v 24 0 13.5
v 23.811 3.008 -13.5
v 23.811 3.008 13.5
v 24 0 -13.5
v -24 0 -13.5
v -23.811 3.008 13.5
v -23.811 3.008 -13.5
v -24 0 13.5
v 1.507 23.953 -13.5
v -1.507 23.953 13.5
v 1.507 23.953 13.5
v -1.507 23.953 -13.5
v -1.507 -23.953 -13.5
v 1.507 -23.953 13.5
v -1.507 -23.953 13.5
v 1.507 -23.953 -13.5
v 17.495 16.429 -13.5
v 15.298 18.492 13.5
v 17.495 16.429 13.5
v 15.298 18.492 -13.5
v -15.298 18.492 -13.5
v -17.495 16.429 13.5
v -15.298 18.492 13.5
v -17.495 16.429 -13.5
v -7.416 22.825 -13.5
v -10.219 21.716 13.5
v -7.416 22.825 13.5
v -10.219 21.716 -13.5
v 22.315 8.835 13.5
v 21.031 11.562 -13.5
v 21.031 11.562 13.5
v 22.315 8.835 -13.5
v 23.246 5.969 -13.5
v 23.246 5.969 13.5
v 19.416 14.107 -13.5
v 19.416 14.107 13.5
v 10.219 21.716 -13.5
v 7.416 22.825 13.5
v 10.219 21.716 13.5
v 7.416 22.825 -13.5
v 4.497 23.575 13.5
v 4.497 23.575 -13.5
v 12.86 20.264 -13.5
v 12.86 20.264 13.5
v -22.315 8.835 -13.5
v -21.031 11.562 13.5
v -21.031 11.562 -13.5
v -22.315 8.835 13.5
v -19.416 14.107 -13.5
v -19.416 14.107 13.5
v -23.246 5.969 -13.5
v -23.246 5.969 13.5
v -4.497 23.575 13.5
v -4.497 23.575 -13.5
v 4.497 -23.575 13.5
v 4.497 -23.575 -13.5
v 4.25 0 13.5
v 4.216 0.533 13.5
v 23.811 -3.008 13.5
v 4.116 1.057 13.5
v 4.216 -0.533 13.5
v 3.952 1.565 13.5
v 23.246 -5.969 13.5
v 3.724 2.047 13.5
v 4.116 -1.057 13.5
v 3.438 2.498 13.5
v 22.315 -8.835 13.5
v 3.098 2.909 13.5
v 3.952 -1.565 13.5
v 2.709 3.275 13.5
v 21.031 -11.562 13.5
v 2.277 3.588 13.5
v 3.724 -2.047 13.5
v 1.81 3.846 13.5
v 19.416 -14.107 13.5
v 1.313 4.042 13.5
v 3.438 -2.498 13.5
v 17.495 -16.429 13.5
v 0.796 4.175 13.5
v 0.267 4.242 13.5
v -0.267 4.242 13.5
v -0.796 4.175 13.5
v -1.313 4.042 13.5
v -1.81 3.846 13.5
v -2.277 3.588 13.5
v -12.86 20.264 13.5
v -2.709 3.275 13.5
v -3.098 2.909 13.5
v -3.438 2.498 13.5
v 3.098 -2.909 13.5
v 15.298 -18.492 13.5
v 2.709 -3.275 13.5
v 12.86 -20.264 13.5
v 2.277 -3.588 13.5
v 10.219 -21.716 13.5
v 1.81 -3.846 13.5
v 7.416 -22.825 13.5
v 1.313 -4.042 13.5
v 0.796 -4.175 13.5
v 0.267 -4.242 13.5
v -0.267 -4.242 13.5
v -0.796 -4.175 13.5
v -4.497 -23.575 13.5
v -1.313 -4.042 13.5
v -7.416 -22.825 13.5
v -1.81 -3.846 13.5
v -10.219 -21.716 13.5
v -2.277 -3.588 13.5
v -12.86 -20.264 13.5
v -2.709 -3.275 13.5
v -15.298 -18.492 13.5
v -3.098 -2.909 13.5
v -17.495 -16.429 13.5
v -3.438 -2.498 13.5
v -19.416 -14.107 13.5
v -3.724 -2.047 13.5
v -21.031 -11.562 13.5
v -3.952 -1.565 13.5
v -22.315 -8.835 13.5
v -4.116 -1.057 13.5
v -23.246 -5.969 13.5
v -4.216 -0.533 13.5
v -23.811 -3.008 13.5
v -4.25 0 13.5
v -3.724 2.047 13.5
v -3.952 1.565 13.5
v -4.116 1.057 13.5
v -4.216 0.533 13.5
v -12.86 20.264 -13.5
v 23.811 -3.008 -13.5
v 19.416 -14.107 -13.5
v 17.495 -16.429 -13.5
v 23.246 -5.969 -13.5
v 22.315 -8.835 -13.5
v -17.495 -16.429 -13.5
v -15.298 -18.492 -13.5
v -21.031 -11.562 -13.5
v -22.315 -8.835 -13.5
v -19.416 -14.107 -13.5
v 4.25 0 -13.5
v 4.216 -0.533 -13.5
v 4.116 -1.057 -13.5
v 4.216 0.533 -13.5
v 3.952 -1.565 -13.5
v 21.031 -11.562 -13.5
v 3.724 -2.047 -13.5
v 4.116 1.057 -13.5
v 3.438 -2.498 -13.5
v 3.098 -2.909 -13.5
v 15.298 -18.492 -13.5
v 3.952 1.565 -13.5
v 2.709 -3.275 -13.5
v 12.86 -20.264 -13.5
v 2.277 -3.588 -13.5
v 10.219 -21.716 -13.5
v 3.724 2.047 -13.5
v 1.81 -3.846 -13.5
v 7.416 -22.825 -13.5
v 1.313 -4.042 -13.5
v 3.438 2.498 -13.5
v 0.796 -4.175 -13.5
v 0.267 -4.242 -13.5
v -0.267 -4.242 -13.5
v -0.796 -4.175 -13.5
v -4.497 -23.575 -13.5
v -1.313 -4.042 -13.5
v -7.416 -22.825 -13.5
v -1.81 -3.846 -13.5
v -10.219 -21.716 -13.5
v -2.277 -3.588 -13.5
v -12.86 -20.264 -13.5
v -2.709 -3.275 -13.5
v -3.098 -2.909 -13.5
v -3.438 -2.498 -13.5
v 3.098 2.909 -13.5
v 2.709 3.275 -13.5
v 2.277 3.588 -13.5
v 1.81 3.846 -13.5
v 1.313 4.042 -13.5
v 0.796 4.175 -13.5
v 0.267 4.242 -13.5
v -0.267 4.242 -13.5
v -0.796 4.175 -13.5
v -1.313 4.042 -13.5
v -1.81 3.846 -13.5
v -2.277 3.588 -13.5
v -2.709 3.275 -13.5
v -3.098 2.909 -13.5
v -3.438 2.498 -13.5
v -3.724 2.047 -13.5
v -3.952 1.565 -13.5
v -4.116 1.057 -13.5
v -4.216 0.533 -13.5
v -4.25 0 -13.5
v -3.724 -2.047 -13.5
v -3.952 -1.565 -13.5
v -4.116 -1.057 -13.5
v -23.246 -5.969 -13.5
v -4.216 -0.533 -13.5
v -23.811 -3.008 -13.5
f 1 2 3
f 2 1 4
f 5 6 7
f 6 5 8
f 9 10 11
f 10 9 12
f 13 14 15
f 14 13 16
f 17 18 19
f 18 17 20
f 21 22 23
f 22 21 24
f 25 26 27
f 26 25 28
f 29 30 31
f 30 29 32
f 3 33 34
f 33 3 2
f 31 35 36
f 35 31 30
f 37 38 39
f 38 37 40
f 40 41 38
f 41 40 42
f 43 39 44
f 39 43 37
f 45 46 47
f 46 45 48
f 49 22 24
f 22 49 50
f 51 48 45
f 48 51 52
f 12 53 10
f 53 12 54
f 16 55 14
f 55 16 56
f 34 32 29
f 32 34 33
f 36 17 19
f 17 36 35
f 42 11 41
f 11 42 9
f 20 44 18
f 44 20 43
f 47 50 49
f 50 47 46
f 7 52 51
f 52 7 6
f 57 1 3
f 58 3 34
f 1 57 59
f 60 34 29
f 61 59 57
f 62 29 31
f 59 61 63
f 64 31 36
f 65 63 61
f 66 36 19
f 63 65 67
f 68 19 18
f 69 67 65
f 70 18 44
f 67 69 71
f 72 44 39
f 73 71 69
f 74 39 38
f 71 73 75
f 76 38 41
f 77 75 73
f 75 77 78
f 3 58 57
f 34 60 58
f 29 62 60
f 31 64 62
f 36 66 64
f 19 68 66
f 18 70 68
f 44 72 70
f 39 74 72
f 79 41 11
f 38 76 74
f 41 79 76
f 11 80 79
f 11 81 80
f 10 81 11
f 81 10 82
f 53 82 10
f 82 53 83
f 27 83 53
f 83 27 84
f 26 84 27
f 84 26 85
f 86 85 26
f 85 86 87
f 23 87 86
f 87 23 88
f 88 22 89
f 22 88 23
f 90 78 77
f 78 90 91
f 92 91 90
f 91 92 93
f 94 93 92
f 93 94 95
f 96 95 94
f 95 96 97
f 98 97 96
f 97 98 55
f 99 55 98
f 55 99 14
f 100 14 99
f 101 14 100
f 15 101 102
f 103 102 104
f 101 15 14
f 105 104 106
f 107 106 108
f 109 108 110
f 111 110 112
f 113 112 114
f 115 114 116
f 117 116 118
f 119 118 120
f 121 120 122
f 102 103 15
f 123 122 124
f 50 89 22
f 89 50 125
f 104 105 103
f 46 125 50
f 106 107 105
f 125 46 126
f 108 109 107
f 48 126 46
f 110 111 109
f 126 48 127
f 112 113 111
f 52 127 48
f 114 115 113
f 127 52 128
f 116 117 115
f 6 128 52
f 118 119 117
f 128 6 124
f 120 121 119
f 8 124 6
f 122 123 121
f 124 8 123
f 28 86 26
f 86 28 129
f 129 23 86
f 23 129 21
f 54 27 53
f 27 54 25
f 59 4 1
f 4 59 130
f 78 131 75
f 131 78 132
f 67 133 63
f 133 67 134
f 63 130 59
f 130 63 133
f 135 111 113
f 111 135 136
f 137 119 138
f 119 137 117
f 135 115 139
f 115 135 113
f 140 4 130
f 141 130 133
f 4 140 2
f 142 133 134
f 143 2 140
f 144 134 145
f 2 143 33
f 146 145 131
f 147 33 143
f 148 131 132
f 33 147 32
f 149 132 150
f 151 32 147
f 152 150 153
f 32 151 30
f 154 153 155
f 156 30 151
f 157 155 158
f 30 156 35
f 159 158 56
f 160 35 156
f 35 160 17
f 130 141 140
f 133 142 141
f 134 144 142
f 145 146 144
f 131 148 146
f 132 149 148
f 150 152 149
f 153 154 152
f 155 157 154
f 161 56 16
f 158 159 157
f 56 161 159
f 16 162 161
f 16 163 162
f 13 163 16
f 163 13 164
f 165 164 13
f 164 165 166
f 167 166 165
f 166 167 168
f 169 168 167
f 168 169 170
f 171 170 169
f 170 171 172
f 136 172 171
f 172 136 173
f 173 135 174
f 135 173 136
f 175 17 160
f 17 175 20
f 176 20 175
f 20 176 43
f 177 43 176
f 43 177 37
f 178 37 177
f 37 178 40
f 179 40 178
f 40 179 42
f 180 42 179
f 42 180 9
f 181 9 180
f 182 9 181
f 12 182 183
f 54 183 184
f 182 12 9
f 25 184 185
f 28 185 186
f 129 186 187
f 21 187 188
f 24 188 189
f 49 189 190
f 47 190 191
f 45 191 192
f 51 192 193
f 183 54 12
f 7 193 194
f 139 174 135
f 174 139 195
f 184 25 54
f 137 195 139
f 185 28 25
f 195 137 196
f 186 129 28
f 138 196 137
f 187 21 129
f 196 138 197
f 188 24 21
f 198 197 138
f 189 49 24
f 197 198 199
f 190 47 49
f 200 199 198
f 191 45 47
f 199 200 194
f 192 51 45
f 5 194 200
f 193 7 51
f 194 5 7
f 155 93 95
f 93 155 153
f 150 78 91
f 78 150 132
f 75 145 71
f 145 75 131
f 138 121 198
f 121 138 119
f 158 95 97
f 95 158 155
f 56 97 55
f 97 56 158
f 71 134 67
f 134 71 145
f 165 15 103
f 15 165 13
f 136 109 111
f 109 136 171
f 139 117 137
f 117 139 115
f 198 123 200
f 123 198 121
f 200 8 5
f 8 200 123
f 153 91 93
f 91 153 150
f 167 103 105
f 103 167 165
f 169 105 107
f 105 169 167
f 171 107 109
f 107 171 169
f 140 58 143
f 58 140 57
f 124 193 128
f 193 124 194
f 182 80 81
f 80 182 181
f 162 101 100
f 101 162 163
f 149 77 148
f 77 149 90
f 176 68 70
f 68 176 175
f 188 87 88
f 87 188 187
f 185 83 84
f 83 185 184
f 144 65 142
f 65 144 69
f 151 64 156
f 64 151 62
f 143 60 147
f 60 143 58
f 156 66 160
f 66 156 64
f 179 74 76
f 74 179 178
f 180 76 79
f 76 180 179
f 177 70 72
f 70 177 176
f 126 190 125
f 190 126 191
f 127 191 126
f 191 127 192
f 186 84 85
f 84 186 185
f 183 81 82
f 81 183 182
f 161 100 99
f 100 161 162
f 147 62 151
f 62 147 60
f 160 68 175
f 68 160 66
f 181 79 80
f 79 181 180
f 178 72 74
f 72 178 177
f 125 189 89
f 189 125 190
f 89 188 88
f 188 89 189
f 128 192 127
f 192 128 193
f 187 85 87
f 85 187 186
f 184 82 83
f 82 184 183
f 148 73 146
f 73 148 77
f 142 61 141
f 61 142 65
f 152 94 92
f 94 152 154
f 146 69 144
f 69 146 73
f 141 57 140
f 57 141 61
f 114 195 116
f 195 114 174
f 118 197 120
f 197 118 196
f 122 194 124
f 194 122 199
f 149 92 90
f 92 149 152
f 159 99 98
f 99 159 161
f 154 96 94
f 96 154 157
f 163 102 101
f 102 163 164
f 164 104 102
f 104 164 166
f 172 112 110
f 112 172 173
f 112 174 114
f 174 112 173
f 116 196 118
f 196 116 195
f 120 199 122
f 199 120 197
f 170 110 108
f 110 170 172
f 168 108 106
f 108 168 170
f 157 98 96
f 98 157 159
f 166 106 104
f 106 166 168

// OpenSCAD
$fn = 50;


difference() {
	union() {
		translate(v = [0, 0, -13.5000000000]) {
			cylinder(h = 27, r = 24.0000000000);
		}
	}
	union() {
		translate(v = [0, 0, -100.0000000000]) {
			cylinder(h = 200, r = 4.2500000000);
		}
	}
}
